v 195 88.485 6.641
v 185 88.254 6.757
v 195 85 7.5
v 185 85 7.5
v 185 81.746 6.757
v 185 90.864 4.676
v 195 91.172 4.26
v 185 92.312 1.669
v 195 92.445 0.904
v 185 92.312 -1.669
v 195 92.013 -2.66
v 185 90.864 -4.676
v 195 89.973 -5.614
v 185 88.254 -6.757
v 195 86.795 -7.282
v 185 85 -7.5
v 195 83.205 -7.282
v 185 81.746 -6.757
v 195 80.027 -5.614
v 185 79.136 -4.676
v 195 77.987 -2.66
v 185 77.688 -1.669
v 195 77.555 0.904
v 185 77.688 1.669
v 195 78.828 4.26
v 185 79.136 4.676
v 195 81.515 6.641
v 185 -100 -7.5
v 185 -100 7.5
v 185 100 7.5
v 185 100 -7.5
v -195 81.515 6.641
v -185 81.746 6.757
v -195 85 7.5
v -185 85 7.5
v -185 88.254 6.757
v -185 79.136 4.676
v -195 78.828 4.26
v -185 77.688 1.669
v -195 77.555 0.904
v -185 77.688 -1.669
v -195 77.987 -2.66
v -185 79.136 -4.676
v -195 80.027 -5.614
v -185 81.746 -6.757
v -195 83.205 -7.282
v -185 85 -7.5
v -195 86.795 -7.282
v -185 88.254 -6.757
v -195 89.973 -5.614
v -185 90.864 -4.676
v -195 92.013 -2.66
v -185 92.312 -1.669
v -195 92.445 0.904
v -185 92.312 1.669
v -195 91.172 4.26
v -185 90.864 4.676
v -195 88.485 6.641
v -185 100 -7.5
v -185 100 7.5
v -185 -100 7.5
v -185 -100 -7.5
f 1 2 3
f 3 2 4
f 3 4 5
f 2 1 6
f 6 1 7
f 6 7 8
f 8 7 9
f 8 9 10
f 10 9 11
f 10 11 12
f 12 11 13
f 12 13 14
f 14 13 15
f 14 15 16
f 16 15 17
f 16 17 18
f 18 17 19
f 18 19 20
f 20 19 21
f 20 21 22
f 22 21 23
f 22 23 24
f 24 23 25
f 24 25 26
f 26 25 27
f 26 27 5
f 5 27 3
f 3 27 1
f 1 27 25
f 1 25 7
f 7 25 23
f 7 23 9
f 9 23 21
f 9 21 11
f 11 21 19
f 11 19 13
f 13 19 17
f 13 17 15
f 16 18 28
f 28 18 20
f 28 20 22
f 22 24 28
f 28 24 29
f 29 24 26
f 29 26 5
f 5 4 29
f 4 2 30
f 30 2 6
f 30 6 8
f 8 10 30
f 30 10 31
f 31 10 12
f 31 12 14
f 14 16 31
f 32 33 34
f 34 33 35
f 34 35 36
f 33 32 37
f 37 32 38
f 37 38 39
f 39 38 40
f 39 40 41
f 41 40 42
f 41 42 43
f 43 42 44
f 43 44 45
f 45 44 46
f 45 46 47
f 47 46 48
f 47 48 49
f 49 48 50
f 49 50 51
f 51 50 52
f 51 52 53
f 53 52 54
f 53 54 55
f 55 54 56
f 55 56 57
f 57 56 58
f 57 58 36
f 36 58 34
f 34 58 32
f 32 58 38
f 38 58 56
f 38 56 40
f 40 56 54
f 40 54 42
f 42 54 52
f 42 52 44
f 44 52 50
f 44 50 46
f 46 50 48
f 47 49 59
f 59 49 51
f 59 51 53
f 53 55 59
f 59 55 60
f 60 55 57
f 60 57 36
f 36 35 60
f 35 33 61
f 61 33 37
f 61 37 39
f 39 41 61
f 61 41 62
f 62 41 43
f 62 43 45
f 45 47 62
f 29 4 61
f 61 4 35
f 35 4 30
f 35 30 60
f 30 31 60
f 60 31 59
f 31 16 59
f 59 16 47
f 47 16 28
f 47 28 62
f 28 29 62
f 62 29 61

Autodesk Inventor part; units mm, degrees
ref_plane "YZ Plane" through (0, 0, 0) normal (1, 0, 0) x (0, 1, 0)
ref_plane "XZ Plane" through (0, 0, 0) normal (0, 1, 0) x (-1, 0, 0)
ref_plane "XY Plane" through (0, 0, 0) normal (0, 0, 1) x (1, 0, 0)
sketch "草图1" plane through (0, 0, 0) normal (1, 0, 0) x (0, 1, 0)
  line L0 (100, 7.5) -> (-100, 7.5)
  line L1 (-100, 7.5) -> (-100, -7.5)
  line L2 (-100, -7.5) -> (100, -7.5)
  line L3 (100, -7.5) -> (100, 7.5)
  line L4 (0, -10.5) -> (0, 10.5) projected
  line L5 (-140, 0) -> (140, 0) projected
  point P0 (0, 0)
  dimension "d0" = 15
  dimension "d1" = 200
extrude "拉伸1" add sketch "草图1" along normal mid plane 370
sketch "草图2" plane through (-185, 0, 0) normal (-1, 0, 0) x (0, 0, 1)
  line L0 (0, -148.5) -> (0, 191) projected
  circle A0 centre (0, 85) radius 7.5
  line L1 (7.5, 100) -> (-7.5, 100) projected
  point P0 (0, 0)
  dimension "d4" = 15
  dimension "d5" = 15
extrude "拉伸2" add sketch "草图2" along normal blind 10
mirror "镜像1" about plane through (0, 0, 0) normal (1, 0, 0) of "拉伸2"
properties part number "挡板"
